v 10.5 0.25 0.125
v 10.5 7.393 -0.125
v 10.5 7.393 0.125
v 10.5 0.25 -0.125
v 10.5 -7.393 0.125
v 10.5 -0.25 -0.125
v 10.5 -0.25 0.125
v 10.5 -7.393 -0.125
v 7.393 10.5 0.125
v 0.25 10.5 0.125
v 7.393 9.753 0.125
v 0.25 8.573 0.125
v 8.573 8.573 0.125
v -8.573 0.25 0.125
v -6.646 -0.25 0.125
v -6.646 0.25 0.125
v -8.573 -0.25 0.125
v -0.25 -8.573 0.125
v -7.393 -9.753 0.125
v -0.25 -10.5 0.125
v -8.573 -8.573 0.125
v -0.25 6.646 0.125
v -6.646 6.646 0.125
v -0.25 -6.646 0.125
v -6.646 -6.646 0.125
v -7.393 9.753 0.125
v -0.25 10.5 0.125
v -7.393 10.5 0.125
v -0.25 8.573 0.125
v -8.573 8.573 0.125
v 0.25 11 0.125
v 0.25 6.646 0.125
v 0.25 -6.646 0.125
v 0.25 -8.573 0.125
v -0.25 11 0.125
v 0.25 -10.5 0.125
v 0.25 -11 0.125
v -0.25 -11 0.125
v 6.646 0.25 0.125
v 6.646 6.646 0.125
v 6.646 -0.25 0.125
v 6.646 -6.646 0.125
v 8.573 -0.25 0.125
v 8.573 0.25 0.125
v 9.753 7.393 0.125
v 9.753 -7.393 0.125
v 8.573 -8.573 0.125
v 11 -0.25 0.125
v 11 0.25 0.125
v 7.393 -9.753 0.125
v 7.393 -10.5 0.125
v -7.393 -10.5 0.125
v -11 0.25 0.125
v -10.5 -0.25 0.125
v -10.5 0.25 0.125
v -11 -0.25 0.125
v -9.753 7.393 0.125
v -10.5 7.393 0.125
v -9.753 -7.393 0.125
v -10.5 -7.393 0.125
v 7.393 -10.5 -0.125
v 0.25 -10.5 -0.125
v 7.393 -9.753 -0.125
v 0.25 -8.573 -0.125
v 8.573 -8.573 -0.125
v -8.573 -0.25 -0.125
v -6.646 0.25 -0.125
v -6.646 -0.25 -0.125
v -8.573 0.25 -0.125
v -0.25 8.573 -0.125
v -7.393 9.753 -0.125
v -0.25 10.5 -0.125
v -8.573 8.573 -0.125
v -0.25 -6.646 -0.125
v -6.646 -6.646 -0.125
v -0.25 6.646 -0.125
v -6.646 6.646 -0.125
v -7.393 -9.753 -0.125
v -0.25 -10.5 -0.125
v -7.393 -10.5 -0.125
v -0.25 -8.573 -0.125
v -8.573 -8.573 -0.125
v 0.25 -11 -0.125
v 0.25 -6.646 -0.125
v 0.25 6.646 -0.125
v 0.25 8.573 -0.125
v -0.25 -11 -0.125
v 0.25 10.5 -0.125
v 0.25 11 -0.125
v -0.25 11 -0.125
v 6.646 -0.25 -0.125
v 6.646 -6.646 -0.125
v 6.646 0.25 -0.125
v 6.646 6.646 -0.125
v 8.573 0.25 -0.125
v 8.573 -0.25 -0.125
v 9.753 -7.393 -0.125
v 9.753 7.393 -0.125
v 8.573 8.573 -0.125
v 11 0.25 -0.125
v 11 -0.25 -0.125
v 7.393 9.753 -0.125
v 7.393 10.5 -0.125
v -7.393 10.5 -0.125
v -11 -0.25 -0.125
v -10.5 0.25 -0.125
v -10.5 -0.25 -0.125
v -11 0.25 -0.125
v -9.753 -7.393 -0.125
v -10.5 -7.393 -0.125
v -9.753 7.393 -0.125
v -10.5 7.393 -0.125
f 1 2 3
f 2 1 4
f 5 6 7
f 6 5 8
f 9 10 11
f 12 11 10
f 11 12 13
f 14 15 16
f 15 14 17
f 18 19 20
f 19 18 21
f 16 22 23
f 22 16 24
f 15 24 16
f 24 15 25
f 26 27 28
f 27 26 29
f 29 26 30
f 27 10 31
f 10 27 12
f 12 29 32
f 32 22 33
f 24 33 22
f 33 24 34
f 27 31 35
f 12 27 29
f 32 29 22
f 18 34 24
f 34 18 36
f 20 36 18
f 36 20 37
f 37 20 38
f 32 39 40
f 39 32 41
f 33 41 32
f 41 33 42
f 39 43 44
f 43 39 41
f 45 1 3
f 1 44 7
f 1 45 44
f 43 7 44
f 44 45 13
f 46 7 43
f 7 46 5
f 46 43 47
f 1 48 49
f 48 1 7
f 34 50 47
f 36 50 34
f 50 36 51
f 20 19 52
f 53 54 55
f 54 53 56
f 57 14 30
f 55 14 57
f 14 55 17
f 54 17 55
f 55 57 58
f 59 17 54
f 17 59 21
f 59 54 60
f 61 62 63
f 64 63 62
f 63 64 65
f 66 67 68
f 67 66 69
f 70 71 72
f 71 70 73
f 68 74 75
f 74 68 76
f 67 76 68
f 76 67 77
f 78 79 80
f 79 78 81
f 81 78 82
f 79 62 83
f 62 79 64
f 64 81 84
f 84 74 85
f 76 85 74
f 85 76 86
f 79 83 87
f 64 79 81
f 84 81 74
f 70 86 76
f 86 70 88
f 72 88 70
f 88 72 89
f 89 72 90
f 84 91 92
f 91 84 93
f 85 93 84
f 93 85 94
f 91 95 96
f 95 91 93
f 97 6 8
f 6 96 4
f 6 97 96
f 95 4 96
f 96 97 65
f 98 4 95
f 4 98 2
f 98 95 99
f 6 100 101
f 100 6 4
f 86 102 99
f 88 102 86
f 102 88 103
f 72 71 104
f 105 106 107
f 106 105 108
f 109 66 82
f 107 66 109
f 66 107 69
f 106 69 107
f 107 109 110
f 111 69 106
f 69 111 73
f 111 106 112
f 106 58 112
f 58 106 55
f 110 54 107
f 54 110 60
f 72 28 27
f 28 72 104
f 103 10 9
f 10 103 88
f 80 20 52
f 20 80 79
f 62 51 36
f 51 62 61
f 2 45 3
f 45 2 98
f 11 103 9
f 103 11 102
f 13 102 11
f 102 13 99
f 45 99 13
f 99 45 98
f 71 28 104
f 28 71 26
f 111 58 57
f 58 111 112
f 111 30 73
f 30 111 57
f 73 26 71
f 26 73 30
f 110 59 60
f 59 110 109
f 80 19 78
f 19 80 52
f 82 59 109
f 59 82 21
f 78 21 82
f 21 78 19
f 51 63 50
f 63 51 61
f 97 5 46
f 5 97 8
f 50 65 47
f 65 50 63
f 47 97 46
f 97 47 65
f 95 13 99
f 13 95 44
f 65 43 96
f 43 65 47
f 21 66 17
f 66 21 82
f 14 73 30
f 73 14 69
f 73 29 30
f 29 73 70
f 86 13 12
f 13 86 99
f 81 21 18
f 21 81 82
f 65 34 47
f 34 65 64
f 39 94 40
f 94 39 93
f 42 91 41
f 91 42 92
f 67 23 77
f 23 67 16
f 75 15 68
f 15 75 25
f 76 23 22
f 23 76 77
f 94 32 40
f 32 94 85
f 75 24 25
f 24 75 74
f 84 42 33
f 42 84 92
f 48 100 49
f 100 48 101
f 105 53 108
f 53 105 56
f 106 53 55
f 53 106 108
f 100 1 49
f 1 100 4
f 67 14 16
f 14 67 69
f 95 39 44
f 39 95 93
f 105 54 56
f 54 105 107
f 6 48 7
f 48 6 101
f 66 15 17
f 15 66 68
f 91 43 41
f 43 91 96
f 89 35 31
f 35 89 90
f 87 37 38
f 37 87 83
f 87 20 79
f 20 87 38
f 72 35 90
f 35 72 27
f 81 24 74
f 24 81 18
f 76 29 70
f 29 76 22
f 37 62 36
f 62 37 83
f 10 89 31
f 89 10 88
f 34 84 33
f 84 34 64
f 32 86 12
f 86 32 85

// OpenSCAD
use <sparring_parts.scad>;

$fa=1;
$fs = 0.1;

// PARAMETERS
outer_big_size = 22;
outer_small_size = 16;

border_thickness = 0.5;

inner_big_size = outer_big_size - 2 * border_thickness;
inner_small_size = outer_small_size - 2 * border_thickness;


sparring_mask(big_s = inner_big_size,small_s=inner_small_size,height=0.25, cross_l = outer_big_size, flat = true);
